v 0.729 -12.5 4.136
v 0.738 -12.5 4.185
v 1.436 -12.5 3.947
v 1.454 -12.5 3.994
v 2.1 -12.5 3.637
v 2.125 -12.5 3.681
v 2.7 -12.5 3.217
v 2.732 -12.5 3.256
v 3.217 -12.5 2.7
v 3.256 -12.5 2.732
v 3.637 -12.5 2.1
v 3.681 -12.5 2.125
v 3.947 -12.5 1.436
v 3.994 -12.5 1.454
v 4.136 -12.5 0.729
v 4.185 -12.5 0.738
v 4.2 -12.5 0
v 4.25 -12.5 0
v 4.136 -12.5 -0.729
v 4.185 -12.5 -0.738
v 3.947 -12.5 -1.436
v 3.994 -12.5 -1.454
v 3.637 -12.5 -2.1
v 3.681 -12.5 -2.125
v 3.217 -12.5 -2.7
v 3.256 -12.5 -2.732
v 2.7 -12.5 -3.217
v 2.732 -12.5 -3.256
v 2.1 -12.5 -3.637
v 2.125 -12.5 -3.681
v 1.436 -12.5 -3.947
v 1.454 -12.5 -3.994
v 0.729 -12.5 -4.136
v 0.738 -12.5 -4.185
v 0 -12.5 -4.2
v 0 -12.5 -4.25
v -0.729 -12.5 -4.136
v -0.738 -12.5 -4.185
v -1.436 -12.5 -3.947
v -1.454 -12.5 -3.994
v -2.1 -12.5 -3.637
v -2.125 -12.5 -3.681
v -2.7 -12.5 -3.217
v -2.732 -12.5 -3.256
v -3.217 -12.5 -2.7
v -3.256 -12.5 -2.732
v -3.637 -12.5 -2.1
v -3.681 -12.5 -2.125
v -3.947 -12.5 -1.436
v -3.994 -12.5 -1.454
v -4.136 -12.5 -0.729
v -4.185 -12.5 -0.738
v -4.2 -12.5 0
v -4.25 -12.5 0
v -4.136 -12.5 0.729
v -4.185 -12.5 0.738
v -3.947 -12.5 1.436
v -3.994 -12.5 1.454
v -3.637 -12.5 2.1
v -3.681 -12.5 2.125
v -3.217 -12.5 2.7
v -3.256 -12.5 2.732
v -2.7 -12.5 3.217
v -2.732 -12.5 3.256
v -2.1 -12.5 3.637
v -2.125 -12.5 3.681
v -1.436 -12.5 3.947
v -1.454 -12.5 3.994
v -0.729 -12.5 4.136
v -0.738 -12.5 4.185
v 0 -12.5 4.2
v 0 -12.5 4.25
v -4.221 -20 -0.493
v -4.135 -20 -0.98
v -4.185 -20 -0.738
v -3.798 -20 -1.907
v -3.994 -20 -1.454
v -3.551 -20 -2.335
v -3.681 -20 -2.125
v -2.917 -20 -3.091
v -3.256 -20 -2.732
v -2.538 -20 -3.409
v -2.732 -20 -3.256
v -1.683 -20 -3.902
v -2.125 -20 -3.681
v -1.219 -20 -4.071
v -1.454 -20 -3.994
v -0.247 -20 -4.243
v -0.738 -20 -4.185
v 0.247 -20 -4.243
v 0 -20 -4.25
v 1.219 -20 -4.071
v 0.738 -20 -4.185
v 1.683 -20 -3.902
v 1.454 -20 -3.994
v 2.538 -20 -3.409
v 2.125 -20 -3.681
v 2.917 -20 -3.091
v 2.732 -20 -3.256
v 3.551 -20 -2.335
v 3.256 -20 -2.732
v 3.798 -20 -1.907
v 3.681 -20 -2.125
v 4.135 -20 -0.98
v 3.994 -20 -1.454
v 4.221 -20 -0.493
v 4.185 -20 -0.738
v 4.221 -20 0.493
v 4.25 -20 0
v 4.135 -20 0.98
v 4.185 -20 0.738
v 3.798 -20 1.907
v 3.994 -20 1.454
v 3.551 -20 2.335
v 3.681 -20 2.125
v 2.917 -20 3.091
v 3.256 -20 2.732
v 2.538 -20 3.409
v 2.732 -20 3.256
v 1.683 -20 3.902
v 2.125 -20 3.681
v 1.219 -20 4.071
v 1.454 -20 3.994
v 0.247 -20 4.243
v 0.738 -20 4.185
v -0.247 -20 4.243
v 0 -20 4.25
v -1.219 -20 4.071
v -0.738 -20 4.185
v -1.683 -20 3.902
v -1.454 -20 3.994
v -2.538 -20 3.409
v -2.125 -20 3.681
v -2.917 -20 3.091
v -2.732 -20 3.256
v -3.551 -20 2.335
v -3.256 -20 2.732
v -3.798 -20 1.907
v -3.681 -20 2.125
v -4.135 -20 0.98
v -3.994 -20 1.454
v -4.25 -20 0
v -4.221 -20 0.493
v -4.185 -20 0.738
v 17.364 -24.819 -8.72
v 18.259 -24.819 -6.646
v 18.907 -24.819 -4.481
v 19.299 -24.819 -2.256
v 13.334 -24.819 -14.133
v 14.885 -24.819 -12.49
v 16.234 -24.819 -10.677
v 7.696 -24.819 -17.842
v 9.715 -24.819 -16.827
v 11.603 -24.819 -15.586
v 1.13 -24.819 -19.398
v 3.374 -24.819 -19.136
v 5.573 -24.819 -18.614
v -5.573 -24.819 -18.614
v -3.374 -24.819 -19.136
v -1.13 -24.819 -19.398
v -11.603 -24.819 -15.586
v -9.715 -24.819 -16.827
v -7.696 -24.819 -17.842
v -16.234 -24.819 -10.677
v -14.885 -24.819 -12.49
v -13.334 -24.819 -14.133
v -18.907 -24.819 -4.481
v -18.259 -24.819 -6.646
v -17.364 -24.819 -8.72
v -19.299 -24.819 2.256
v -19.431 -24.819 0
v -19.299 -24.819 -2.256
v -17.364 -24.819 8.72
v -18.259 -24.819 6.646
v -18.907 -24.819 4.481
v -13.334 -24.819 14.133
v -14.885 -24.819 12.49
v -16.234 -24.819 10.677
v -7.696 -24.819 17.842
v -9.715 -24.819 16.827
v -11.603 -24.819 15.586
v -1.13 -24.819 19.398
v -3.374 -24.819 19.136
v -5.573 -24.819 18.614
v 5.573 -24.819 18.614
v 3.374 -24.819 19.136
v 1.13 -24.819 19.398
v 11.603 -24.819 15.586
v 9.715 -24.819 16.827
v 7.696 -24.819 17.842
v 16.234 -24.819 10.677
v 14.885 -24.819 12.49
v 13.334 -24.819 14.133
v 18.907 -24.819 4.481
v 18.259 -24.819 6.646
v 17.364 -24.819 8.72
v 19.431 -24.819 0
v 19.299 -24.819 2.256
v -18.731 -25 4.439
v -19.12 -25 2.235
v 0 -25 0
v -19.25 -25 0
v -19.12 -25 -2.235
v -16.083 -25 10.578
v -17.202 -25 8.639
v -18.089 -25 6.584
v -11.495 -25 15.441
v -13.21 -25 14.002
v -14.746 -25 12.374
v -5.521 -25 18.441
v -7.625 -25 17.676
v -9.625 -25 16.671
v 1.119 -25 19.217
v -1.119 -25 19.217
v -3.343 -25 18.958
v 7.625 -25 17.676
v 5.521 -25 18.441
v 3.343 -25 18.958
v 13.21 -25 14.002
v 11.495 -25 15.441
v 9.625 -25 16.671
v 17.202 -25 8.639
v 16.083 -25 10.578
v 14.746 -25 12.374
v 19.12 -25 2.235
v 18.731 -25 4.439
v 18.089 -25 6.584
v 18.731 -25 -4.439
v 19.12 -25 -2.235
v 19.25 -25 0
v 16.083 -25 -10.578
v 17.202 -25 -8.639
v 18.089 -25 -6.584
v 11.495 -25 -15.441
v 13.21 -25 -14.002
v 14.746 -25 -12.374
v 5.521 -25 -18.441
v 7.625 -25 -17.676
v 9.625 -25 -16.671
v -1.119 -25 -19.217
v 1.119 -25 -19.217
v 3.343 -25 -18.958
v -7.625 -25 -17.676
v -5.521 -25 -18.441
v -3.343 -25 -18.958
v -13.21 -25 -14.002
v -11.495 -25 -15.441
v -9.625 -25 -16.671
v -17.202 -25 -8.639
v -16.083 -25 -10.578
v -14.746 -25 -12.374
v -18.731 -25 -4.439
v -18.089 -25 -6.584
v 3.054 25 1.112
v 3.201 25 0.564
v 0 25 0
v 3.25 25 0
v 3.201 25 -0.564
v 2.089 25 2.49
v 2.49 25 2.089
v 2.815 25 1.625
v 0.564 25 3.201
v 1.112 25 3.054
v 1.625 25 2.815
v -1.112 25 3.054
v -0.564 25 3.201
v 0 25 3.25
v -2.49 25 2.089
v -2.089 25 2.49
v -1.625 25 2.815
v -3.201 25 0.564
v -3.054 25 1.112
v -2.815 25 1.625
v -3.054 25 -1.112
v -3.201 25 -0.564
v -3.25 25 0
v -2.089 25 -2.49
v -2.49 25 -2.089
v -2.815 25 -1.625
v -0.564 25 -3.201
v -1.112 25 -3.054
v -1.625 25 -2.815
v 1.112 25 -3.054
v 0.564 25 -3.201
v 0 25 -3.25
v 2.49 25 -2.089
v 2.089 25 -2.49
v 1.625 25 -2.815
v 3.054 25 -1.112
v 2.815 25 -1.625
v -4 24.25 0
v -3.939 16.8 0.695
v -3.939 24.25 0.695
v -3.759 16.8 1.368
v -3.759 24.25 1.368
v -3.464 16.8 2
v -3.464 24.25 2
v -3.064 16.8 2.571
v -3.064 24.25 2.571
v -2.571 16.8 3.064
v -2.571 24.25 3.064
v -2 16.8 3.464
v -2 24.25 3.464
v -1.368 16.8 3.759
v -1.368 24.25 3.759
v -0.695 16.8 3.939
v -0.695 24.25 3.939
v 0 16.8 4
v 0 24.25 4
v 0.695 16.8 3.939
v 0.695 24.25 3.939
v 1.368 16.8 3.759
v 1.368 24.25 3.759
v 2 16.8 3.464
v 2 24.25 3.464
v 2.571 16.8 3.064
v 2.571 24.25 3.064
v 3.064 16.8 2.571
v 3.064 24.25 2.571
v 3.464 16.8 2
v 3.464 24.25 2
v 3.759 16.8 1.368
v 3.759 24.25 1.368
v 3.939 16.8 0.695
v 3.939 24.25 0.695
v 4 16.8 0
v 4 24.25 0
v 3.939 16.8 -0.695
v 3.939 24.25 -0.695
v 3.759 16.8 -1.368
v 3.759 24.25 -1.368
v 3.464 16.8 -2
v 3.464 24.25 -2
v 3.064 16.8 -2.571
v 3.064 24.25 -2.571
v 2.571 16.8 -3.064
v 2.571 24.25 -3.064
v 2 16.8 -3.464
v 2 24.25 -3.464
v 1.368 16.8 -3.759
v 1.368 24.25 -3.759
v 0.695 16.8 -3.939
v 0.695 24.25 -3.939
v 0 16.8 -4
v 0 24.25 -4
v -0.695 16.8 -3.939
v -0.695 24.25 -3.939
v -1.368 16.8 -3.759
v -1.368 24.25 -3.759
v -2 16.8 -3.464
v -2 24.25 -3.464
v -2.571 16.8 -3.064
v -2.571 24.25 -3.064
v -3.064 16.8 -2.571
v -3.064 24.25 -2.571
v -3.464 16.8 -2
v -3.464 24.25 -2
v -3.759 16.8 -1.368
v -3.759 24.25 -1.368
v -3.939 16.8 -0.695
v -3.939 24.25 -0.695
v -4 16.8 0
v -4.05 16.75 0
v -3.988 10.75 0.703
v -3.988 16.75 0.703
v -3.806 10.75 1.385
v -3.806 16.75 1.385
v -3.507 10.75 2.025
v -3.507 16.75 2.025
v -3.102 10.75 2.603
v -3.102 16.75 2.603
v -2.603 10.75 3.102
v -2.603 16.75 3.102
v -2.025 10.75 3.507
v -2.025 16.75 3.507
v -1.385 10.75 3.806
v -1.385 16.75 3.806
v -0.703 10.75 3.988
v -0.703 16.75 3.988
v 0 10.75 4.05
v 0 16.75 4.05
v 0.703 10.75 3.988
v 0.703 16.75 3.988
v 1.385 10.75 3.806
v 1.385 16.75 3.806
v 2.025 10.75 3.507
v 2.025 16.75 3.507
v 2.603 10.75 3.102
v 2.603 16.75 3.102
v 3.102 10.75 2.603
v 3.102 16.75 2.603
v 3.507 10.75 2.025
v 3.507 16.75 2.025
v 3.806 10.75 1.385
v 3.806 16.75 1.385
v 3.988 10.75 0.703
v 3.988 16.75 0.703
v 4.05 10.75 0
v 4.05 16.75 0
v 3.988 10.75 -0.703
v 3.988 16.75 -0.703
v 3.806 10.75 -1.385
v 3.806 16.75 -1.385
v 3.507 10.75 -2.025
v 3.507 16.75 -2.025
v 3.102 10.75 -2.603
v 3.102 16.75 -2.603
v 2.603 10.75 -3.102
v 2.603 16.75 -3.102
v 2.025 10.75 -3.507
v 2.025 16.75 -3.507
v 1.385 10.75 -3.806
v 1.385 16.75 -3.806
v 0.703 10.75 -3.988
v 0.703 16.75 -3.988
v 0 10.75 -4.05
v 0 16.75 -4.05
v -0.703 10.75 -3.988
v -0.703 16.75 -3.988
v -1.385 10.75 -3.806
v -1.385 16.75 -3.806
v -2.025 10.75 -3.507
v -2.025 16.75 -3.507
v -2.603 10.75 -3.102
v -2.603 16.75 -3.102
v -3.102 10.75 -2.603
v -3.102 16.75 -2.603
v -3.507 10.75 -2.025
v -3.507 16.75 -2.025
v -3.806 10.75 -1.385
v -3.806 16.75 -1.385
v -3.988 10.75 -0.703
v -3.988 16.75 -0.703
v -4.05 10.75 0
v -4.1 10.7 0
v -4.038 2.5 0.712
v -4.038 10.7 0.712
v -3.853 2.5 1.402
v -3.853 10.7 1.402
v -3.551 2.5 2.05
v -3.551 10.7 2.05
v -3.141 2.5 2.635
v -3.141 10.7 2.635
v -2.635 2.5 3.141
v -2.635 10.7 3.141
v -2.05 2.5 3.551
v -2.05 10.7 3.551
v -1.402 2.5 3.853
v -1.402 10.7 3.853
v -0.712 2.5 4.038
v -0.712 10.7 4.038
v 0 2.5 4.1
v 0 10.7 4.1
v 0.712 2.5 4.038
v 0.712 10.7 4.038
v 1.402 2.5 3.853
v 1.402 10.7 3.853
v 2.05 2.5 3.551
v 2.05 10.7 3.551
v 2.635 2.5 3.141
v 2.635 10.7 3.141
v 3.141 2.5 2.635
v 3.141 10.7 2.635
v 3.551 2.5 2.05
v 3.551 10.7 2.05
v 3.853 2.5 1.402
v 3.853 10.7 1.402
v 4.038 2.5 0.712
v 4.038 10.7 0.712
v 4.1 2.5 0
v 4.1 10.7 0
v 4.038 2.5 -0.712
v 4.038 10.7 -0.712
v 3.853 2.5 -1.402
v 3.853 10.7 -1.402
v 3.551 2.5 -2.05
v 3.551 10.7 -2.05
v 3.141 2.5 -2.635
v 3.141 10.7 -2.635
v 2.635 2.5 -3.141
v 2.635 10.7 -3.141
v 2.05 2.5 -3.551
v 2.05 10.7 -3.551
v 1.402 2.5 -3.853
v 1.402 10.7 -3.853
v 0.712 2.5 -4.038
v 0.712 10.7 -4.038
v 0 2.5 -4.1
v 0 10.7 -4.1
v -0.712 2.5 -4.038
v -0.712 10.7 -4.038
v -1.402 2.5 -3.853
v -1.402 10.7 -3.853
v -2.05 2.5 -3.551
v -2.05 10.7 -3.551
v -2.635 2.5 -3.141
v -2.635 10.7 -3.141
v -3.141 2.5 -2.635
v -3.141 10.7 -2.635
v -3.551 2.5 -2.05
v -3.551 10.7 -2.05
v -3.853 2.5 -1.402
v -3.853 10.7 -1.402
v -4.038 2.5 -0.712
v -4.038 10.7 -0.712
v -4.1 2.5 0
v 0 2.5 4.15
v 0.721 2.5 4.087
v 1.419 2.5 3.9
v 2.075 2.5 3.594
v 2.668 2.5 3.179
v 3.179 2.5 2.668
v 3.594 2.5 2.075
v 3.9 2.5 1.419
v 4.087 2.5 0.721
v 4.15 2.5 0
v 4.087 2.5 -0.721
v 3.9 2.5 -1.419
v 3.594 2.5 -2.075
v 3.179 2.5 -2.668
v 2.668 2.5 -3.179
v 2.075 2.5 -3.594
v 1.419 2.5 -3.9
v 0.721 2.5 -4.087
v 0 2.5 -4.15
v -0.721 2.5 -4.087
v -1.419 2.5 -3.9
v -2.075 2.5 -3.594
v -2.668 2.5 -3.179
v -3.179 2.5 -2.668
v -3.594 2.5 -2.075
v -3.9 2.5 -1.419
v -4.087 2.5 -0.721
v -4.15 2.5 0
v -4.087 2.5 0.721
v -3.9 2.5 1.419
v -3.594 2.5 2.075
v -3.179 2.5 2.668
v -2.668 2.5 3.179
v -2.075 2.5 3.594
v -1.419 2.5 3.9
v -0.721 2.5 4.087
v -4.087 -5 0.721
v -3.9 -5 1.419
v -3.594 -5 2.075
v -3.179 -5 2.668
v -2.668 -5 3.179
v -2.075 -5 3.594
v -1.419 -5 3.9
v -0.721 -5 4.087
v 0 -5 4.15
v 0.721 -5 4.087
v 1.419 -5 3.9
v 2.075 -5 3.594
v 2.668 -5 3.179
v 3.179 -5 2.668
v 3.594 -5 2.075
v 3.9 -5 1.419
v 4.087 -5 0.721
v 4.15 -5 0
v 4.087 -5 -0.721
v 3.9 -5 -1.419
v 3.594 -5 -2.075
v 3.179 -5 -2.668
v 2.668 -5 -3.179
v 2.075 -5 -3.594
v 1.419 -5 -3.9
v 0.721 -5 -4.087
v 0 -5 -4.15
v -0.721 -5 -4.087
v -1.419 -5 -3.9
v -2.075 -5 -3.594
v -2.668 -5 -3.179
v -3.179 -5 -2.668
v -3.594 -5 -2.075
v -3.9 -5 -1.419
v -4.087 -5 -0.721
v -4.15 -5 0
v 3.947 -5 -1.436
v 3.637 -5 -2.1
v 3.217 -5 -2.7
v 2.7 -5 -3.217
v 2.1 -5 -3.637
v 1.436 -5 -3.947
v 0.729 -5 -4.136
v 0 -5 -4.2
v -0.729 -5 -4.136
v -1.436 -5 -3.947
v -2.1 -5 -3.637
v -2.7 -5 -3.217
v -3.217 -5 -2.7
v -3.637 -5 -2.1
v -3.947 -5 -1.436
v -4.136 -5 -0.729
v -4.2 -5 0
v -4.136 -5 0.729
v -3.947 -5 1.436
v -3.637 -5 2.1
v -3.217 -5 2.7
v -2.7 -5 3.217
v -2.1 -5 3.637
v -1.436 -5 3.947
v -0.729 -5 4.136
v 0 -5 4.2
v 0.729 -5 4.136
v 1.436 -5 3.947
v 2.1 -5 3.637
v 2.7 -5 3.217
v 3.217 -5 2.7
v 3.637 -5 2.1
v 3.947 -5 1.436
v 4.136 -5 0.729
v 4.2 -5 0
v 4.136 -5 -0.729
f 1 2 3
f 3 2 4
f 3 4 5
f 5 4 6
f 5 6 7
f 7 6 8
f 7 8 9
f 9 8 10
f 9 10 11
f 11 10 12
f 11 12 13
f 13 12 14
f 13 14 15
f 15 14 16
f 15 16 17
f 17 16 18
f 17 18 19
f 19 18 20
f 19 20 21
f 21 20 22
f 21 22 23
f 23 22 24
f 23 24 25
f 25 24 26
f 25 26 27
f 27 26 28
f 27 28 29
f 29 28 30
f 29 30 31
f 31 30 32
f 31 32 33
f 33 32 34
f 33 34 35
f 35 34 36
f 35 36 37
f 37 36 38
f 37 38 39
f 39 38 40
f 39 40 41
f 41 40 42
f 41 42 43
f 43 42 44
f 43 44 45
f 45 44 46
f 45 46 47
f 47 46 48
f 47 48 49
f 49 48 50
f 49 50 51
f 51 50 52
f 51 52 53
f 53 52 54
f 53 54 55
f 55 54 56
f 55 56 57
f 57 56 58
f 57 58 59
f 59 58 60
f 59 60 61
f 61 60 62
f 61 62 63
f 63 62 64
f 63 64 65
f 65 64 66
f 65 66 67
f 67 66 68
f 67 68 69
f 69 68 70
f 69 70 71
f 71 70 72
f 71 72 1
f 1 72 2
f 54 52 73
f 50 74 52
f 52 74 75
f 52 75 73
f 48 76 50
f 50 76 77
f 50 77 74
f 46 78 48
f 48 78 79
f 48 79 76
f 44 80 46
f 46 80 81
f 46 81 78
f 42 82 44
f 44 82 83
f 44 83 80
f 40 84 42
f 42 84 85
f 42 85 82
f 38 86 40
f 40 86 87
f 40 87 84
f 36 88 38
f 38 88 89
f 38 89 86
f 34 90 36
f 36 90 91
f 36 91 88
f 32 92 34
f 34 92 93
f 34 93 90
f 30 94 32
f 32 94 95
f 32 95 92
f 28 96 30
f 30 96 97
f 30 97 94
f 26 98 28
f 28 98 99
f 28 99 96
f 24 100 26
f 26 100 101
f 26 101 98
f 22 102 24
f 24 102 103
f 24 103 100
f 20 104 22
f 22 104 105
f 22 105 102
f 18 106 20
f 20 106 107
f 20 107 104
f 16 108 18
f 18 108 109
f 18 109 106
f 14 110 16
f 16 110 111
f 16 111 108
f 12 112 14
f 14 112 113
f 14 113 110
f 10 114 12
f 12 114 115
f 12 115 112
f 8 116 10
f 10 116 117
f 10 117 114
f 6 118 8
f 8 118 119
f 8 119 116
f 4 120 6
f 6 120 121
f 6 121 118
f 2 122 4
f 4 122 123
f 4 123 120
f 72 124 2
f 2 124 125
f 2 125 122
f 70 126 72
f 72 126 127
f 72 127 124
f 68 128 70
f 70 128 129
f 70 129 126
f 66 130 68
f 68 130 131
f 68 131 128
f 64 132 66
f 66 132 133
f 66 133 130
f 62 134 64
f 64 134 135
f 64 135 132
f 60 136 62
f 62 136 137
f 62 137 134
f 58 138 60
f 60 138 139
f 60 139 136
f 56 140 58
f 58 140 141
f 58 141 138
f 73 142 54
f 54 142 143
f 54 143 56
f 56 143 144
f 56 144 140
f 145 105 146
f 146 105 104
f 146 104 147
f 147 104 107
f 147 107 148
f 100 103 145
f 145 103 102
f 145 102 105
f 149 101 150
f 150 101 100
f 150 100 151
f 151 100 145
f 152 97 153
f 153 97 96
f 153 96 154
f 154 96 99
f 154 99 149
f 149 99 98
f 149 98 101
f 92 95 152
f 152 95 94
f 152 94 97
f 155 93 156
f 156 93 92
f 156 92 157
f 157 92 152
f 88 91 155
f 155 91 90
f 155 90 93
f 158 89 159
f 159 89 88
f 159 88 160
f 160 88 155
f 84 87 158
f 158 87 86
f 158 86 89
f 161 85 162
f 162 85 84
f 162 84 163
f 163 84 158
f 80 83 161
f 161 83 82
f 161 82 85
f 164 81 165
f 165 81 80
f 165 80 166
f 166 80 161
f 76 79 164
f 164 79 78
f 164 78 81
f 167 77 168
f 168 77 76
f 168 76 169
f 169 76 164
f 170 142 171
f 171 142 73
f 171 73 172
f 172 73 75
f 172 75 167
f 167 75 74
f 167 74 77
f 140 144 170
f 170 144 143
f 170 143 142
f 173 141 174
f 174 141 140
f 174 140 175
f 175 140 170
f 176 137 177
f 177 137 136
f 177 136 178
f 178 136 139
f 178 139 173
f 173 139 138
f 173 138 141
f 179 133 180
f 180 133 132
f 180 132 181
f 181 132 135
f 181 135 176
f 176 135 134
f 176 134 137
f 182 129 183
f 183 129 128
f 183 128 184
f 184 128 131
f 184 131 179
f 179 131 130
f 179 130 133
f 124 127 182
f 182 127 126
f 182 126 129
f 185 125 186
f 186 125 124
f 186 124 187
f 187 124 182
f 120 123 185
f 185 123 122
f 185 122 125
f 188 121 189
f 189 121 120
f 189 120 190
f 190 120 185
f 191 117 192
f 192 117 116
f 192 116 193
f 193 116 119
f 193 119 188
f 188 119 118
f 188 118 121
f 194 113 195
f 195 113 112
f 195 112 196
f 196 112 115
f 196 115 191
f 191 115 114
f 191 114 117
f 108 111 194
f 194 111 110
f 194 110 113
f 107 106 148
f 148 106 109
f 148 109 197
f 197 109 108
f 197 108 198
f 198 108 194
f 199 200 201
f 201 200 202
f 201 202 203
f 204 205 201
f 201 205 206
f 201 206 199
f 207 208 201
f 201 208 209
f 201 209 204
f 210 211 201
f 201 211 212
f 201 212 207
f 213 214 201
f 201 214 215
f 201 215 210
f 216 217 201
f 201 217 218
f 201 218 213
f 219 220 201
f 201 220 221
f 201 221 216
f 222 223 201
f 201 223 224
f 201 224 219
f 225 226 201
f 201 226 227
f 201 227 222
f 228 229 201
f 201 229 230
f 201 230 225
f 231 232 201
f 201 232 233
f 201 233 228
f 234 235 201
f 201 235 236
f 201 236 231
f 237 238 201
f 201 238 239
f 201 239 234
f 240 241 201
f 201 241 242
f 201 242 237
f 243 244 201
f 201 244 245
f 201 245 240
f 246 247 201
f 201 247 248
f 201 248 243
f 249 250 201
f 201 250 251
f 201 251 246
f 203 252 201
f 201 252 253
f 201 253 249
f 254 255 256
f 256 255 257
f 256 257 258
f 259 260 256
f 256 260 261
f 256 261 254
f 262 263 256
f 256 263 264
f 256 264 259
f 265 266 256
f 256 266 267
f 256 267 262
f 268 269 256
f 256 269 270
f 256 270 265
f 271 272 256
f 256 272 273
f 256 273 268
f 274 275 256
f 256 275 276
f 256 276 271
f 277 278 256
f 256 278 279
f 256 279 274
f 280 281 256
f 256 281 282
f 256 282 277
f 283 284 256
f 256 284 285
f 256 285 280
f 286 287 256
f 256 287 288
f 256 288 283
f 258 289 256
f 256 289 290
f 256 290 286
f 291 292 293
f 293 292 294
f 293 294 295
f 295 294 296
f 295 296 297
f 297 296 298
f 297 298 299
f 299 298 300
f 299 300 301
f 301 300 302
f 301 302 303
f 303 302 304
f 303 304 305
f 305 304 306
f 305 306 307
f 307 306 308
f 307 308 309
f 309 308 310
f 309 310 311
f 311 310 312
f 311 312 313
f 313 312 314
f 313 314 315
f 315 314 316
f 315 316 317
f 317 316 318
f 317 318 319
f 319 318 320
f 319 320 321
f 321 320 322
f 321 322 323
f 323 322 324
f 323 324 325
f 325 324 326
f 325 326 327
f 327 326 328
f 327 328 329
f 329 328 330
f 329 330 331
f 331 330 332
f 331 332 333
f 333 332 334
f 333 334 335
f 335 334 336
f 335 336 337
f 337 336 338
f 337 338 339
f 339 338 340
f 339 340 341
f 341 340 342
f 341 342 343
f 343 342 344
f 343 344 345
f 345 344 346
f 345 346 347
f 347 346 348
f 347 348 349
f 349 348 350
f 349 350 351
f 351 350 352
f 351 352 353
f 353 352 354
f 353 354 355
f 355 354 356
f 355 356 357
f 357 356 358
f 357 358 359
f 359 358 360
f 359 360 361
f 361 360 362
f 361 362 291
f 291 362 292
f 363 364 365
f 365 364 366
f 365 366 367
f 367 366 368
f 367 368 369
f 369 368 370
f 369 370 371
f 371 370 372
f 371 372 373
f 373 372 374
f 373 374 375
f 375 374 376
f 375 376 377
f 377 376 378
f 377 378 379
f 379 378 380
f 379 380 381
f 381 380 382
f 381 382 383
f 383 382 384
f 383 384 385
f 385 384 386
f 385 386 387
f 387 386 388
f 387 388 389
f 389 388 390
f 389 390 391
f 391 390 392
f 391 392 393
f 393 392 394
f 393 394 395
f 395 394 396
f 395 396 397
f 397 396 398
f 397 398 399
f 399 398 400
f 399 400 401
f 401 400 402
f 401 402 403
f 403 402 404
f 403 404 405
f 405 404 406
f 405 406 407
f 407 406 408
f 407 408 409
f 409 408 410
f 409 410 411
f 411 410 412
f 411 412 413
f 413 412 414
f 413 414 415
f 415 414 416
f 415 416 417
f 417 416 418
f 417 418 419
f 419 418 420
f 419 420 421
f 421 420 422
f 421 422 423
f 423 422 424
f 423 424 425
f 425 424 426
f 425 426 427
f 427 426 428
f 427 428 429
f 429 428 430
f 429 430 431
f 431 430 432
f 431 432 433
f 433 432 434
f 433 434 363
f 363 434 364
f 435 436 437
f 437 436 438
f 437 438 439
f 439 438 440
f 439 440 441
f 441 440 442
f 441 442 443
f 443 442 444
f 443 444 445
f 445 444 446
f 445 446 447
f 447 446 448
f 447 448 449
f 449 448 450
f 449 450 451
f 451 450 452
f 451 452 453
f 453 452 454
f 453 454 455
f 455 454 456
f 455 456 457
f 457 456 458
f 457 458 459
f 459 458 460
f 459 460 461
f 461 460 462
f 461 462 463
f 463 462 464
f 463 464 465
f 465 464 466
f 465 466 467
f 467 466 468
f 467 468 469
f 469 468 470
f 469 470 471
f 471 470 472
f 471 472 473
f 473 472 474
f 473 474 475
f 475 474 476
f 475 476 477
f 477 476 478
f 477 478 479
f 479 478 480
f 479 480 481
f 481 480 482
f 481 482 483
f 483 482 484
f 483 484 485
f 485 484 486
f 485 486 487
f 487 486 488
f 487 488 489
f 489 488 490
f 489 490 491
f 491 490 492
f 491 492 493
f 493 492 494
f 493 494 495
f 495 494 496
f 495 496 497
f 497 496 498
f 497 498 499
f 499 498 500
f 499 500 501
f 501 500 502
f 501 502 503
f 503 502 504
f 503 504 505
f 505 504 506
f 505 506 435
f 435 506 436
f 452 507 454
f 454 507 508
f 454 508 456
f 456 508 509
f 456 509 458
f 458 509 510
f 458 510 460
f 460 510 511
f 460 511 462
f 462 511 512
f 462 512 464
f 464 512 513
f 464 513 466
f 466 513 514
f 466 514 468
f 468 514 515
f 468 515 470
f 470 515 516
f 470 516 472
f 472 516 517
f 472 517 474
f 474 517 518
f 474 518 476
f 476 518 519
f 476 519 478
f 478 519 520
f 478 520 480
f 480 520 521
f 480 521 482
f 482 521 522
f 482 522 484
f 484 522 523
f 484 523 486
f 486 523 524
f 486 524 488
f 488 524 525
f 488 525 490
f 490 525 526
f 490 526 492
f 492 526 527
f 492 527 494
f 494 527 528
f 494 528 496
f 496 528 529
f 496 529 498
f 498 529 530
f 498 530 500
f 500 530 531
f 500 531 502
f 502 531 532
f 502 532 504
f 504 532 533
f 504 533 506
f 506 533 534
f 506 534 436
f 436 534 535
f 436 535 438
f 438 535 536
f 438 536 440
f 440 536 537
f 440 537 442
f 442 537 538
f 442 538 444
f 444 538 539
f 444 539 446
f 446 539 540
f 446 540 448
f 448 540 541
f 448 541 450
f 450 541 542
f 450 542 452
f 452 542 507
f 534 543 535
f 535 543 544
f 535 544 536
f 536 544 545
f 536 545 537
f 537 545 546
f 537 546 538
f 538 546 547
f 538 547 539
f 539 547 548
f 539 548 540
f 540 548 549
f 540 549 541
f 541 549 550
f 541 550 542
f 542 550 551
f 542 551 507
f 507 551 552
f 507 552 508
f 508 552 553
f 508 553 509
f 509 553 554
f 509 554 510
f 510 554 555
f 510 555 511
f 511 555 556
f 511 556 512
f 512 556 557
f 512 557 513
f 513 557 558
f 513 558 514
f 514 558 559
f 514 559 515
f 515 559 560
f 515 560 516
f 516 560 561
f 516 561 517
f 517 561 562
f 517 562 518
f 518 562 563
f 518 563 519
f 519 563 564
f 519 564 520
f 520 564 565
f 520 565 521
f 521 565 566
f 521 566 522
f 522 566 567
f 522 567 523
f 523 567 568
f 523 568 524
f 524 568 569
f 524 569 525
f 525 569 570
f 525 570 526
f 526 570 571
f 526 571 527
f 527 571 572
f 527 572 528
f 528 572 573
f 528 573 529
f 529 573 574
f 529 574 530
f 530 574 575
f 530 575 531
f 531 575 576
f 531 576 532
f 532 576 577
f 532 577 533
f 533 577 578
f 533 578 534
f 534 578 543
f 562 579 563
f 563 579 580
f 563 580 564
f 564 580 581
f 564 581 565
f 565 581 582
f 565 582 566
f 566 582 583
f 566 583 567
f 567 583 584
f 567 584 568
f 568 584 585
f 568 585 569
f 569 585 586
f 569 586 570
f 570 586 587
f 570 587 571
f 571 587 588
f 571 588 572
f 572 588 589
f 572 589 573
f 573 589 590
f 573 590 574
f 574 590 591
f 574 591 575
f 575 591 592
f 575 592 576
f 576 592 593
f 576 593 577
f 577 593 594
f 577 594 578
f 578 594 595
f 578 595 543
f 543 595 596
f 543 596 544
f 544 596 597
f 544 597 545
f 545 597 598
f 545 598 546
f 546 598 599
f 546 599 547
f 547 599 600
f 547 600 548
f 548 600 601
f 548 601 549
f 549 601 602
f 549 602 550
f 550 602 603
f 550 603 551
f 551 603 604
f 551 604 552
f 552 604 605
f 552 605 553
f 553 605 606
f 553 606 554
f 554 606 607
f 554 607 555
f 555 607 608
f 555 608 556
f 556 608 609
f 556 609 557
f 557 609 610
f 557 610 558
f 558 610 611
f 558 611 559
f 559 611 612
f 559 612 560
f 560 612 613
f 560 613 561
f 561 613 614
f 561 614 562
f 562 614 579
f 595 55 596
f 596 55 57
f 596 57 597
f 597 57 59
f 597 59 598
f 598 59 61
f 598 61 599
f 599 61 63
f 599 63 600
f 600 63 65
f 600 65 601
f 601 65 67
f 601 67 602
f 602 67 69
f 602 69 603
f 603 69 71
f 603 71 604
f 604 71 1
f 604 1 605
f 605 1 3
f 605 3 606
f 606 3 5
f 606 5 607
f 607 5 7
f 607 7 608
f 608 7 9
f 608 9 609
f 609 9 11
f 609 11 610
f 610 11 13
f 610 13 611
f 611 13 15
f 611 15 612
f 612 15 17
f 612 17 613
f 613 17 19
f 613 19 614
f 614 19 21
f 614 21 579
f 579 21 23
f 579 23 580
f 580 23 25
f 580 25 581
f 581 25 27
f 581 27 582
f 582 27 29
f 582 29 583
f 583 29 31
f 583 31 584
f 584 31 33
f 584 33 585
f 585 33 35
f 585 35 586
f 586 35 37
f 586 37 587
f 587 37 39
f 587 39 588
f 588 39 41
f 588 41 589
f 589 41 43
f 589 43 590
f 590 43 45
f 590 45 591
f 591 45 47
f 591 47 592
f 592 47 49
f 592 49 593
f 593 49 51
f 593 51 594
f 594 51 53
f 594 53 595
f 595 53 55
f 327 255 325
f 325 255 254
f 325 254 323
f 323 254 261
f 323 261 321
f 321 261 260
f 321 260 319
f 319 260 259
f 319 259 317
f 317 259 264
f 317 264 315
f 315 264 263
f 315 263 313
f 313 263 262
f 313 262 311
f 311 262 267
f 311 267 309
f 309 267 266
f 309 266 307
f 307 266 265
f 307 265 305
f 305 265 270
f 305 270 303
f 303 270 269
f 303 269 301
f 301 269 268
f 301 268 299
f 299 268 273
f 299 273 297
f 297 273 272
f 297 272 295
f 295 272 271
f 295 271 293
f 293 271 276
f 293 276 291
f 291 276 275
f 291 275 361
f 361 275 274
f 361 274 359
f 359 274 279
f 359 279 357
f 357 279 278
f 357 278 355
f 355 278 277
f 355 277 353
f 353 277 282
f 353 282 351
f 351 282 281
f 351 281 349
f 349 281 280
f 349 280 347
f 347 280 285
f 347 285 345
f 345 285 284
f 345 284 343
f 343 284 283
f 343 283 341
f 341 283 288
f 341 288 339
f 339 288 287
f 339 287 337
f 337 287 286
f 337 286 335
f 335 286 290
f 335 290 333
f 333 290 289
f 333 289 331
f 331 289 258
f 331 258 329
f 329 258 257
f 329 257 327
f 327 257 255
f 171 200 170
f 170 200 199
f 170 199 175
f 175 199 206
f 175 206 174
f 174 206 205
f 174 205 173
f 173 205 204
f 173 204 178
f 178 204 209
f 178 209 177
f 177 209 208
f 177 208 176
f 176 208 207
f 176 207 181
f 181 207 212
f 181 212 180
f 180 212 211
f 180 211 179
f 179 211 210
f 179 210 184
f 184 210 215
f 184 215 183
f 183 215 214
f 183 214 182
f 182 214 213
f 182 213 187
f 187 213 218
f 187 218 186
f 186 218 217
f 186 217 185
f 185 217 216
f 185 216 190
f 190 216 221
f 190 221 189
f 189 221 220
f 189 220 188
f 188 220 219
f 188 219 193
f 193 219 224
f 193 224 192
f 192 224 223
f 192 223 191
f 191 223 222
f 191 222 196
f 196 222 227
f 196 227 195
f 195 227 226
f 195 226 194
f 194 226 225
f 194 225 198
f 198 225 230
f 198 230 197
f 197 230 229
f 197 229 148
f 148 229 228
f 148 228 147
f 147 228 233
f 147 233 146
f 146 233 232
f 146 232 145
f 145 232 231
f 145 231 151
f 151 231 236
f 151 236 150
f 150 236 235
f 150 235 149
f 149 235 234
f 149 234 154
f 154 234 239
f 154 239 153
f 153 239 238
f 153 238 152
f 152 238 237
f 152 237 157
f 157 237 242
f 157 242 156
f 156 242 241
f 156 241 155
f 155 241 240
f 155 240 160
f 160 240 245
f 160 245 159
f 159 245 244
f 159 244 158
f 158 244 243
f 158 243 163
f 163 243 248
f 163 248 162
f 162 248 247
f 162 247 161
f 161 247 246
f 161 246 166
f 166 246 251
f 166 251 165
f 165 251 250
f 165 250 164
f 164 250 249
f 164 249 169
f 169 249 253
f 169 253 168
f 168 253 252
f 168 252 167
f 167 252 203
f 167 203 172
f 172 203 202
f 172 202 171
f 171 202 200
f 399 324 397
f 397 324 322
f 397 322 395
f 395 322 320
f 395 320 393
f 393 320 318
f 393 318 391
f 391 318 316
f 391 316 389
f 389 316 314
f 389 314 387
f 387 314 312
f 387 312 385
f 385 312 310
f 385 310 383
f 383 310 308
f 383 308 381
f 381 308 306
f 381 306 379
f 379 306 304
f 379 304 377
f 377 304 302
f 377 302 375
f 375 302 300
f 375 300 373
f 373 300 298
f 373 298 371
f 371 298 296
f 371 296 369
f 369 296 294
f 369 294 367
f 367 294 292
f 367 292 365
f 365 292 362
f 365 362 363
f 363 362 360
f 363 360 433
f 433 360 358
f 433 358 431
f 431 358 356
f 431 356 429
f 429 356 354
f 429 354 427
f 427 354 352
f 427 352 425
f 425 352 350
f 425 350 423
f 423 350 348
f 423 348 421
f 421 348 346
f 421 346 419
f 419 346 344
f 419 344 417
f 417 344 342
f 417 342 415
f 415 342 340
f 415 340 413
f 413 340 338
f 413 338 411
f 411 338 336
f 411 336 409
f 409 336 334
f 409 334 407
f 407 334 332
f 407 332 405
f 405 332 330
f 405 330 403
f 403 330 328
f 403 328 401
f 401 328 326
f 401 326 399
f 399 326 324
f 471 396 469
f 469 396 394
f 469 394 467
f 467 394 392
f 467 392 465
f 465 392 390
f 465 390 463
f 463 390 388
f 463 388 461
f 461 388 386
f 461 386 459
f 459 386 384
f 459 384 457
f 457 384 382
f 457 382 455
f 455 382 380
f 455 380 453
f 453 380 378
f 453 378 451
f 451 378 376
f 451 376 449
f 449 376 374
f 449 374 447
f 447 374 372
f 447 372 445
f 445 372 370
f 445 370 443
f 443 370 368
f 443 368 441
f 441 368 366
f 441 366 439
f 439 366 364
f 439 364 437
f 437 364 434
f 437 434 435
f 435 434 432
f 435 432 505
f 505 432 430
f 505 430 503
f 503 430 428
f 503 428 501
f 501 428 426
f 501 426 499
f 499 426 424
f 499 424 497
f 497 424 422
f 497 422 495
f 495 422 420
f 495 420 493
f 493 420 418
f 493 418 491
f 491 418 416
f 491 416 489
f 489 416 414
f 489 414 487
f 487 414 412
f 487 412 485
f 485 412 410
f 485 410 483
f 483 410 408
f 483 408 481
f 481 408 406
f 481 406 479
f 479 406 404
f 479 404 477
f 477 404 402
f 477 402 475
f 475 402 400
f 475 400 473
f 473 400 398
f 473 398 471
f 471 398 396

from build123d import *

# Parameters (mm, degrees)
CHAMFER1_SIZE   = 0.75
CHAMFER1_SIZE_2 = 0.597274803


with BuildPart() as part:
    # Sketch1 → Revolve1 (revolve)
    with BuildSketch(Plane.XY):
        Polygon((-4.2, -12.5), (-4.25, -12.5), (-4.25, -20), (-20, -25), (0, -25), (0, 25), (-4, 25), (-4, 17.5), (-4.05, 17.5), (-4.05, 10), (-4.1, 10), (-4.1, 2.5), (-4.15, 2.5), (-4.15, -5), (-4.2, -5), align=None)
    revolve(axis=Axis((0, 37.271191626, 0), (0, -1, 0)))

    # Chamfer1
    # the kernel refuses this chamfer: 0.75, 0.597274803 mm, written as the material it adds along each edge
    with BuildSketch(Plane(origin=(0, 10, 0), x_dir=(-1, 0, 0), z_dir=(0, 0, 1))) as chamfer1_piece_1_section:
        Polygon((4.05, -CHAMFER1_SIZE), (4.05 + CHAMFER1_SIZE, 0), (4.05, 0), align=None)
    chamfer1_piece_1 = revolve(axis=Axis((0, 10, 0), (0, -1, 0)), mode=Mode.PRIVATE)
    chamfer1_piece_1 = chamfer1_piece_1 & Plane(origin=(0, 10.727876621, 0), x_dir=(-1, 0, 0), z_dir=(0, -1, 0)) * Cylinder(4.1, 20, mode=Mode.PRIVATE)
    add(chamfer1_piece_1)
    # the kernel refuses this chamfer: 0.75, 0.597274803 mm, written as the material it takes off along each edge
    with BuildSketch(Plane(origin=(0, 25, 0), x_dir=(-1, 0, 0), z_dir=(0, 0, 1))) as chamfer1_2_piece_1:
        Polygon((4, CHAMFER1_SIZE), (4 - CHAMFER1_SIZE, 0), (4, 0), align=None)
    revolve(axis=Axis((0, 25, 0), (0, -1, 0)), mode=Mode.SUBTRACT)
    with BuildSketch(Plane(origin=(0, 17.5, 0), x_dir=(-1, 0, 0), z_dir=(0, 0, 1))) as chamfer1_2_piece_2_section:
        Polygon((4.05, CHAMFER1_SIZE), (4.05 - CHAMFER1_SIZE, 0), (4.05, 0), align=None)
    chamfer1_2_piece_2 = revolve(axis=Axis((0, 17.5, 0), (0, -1, 0)), mode=Mode.PRIVATE)
    chamfer1_2_piece_2 = chamfer1_2_piece_2 - Plane(origin=(0, 16.772104401, 0), x_dir=(-1, 0, 0), z_dir=(0, -1, 0)) * Cylinder(4, 17, mode=Mode.PRIVATE)
    add(chamfer1_2_piece_2, mode=Mode.SUBTRACT)
    with BuildSketch(Plane(origin=(0, -25, 0), x_dir=(-1, 0, 0), z_dir=(0, 0, 1))) as chamfer1_2_piece_3:
        Polygon((20 - CHAMFER1_SIZE_2 * 0.953124266375, -CHAMFER1_SIZE_2 * 0.302579132183), (20 - CHAMFER1_SIZE, 0), (20, 0), align=None)
    revolve(axis=Axis((0, -25, 0), (0, -1, 0)), mode=Mode.SUBTRACT)


solid = part.part
